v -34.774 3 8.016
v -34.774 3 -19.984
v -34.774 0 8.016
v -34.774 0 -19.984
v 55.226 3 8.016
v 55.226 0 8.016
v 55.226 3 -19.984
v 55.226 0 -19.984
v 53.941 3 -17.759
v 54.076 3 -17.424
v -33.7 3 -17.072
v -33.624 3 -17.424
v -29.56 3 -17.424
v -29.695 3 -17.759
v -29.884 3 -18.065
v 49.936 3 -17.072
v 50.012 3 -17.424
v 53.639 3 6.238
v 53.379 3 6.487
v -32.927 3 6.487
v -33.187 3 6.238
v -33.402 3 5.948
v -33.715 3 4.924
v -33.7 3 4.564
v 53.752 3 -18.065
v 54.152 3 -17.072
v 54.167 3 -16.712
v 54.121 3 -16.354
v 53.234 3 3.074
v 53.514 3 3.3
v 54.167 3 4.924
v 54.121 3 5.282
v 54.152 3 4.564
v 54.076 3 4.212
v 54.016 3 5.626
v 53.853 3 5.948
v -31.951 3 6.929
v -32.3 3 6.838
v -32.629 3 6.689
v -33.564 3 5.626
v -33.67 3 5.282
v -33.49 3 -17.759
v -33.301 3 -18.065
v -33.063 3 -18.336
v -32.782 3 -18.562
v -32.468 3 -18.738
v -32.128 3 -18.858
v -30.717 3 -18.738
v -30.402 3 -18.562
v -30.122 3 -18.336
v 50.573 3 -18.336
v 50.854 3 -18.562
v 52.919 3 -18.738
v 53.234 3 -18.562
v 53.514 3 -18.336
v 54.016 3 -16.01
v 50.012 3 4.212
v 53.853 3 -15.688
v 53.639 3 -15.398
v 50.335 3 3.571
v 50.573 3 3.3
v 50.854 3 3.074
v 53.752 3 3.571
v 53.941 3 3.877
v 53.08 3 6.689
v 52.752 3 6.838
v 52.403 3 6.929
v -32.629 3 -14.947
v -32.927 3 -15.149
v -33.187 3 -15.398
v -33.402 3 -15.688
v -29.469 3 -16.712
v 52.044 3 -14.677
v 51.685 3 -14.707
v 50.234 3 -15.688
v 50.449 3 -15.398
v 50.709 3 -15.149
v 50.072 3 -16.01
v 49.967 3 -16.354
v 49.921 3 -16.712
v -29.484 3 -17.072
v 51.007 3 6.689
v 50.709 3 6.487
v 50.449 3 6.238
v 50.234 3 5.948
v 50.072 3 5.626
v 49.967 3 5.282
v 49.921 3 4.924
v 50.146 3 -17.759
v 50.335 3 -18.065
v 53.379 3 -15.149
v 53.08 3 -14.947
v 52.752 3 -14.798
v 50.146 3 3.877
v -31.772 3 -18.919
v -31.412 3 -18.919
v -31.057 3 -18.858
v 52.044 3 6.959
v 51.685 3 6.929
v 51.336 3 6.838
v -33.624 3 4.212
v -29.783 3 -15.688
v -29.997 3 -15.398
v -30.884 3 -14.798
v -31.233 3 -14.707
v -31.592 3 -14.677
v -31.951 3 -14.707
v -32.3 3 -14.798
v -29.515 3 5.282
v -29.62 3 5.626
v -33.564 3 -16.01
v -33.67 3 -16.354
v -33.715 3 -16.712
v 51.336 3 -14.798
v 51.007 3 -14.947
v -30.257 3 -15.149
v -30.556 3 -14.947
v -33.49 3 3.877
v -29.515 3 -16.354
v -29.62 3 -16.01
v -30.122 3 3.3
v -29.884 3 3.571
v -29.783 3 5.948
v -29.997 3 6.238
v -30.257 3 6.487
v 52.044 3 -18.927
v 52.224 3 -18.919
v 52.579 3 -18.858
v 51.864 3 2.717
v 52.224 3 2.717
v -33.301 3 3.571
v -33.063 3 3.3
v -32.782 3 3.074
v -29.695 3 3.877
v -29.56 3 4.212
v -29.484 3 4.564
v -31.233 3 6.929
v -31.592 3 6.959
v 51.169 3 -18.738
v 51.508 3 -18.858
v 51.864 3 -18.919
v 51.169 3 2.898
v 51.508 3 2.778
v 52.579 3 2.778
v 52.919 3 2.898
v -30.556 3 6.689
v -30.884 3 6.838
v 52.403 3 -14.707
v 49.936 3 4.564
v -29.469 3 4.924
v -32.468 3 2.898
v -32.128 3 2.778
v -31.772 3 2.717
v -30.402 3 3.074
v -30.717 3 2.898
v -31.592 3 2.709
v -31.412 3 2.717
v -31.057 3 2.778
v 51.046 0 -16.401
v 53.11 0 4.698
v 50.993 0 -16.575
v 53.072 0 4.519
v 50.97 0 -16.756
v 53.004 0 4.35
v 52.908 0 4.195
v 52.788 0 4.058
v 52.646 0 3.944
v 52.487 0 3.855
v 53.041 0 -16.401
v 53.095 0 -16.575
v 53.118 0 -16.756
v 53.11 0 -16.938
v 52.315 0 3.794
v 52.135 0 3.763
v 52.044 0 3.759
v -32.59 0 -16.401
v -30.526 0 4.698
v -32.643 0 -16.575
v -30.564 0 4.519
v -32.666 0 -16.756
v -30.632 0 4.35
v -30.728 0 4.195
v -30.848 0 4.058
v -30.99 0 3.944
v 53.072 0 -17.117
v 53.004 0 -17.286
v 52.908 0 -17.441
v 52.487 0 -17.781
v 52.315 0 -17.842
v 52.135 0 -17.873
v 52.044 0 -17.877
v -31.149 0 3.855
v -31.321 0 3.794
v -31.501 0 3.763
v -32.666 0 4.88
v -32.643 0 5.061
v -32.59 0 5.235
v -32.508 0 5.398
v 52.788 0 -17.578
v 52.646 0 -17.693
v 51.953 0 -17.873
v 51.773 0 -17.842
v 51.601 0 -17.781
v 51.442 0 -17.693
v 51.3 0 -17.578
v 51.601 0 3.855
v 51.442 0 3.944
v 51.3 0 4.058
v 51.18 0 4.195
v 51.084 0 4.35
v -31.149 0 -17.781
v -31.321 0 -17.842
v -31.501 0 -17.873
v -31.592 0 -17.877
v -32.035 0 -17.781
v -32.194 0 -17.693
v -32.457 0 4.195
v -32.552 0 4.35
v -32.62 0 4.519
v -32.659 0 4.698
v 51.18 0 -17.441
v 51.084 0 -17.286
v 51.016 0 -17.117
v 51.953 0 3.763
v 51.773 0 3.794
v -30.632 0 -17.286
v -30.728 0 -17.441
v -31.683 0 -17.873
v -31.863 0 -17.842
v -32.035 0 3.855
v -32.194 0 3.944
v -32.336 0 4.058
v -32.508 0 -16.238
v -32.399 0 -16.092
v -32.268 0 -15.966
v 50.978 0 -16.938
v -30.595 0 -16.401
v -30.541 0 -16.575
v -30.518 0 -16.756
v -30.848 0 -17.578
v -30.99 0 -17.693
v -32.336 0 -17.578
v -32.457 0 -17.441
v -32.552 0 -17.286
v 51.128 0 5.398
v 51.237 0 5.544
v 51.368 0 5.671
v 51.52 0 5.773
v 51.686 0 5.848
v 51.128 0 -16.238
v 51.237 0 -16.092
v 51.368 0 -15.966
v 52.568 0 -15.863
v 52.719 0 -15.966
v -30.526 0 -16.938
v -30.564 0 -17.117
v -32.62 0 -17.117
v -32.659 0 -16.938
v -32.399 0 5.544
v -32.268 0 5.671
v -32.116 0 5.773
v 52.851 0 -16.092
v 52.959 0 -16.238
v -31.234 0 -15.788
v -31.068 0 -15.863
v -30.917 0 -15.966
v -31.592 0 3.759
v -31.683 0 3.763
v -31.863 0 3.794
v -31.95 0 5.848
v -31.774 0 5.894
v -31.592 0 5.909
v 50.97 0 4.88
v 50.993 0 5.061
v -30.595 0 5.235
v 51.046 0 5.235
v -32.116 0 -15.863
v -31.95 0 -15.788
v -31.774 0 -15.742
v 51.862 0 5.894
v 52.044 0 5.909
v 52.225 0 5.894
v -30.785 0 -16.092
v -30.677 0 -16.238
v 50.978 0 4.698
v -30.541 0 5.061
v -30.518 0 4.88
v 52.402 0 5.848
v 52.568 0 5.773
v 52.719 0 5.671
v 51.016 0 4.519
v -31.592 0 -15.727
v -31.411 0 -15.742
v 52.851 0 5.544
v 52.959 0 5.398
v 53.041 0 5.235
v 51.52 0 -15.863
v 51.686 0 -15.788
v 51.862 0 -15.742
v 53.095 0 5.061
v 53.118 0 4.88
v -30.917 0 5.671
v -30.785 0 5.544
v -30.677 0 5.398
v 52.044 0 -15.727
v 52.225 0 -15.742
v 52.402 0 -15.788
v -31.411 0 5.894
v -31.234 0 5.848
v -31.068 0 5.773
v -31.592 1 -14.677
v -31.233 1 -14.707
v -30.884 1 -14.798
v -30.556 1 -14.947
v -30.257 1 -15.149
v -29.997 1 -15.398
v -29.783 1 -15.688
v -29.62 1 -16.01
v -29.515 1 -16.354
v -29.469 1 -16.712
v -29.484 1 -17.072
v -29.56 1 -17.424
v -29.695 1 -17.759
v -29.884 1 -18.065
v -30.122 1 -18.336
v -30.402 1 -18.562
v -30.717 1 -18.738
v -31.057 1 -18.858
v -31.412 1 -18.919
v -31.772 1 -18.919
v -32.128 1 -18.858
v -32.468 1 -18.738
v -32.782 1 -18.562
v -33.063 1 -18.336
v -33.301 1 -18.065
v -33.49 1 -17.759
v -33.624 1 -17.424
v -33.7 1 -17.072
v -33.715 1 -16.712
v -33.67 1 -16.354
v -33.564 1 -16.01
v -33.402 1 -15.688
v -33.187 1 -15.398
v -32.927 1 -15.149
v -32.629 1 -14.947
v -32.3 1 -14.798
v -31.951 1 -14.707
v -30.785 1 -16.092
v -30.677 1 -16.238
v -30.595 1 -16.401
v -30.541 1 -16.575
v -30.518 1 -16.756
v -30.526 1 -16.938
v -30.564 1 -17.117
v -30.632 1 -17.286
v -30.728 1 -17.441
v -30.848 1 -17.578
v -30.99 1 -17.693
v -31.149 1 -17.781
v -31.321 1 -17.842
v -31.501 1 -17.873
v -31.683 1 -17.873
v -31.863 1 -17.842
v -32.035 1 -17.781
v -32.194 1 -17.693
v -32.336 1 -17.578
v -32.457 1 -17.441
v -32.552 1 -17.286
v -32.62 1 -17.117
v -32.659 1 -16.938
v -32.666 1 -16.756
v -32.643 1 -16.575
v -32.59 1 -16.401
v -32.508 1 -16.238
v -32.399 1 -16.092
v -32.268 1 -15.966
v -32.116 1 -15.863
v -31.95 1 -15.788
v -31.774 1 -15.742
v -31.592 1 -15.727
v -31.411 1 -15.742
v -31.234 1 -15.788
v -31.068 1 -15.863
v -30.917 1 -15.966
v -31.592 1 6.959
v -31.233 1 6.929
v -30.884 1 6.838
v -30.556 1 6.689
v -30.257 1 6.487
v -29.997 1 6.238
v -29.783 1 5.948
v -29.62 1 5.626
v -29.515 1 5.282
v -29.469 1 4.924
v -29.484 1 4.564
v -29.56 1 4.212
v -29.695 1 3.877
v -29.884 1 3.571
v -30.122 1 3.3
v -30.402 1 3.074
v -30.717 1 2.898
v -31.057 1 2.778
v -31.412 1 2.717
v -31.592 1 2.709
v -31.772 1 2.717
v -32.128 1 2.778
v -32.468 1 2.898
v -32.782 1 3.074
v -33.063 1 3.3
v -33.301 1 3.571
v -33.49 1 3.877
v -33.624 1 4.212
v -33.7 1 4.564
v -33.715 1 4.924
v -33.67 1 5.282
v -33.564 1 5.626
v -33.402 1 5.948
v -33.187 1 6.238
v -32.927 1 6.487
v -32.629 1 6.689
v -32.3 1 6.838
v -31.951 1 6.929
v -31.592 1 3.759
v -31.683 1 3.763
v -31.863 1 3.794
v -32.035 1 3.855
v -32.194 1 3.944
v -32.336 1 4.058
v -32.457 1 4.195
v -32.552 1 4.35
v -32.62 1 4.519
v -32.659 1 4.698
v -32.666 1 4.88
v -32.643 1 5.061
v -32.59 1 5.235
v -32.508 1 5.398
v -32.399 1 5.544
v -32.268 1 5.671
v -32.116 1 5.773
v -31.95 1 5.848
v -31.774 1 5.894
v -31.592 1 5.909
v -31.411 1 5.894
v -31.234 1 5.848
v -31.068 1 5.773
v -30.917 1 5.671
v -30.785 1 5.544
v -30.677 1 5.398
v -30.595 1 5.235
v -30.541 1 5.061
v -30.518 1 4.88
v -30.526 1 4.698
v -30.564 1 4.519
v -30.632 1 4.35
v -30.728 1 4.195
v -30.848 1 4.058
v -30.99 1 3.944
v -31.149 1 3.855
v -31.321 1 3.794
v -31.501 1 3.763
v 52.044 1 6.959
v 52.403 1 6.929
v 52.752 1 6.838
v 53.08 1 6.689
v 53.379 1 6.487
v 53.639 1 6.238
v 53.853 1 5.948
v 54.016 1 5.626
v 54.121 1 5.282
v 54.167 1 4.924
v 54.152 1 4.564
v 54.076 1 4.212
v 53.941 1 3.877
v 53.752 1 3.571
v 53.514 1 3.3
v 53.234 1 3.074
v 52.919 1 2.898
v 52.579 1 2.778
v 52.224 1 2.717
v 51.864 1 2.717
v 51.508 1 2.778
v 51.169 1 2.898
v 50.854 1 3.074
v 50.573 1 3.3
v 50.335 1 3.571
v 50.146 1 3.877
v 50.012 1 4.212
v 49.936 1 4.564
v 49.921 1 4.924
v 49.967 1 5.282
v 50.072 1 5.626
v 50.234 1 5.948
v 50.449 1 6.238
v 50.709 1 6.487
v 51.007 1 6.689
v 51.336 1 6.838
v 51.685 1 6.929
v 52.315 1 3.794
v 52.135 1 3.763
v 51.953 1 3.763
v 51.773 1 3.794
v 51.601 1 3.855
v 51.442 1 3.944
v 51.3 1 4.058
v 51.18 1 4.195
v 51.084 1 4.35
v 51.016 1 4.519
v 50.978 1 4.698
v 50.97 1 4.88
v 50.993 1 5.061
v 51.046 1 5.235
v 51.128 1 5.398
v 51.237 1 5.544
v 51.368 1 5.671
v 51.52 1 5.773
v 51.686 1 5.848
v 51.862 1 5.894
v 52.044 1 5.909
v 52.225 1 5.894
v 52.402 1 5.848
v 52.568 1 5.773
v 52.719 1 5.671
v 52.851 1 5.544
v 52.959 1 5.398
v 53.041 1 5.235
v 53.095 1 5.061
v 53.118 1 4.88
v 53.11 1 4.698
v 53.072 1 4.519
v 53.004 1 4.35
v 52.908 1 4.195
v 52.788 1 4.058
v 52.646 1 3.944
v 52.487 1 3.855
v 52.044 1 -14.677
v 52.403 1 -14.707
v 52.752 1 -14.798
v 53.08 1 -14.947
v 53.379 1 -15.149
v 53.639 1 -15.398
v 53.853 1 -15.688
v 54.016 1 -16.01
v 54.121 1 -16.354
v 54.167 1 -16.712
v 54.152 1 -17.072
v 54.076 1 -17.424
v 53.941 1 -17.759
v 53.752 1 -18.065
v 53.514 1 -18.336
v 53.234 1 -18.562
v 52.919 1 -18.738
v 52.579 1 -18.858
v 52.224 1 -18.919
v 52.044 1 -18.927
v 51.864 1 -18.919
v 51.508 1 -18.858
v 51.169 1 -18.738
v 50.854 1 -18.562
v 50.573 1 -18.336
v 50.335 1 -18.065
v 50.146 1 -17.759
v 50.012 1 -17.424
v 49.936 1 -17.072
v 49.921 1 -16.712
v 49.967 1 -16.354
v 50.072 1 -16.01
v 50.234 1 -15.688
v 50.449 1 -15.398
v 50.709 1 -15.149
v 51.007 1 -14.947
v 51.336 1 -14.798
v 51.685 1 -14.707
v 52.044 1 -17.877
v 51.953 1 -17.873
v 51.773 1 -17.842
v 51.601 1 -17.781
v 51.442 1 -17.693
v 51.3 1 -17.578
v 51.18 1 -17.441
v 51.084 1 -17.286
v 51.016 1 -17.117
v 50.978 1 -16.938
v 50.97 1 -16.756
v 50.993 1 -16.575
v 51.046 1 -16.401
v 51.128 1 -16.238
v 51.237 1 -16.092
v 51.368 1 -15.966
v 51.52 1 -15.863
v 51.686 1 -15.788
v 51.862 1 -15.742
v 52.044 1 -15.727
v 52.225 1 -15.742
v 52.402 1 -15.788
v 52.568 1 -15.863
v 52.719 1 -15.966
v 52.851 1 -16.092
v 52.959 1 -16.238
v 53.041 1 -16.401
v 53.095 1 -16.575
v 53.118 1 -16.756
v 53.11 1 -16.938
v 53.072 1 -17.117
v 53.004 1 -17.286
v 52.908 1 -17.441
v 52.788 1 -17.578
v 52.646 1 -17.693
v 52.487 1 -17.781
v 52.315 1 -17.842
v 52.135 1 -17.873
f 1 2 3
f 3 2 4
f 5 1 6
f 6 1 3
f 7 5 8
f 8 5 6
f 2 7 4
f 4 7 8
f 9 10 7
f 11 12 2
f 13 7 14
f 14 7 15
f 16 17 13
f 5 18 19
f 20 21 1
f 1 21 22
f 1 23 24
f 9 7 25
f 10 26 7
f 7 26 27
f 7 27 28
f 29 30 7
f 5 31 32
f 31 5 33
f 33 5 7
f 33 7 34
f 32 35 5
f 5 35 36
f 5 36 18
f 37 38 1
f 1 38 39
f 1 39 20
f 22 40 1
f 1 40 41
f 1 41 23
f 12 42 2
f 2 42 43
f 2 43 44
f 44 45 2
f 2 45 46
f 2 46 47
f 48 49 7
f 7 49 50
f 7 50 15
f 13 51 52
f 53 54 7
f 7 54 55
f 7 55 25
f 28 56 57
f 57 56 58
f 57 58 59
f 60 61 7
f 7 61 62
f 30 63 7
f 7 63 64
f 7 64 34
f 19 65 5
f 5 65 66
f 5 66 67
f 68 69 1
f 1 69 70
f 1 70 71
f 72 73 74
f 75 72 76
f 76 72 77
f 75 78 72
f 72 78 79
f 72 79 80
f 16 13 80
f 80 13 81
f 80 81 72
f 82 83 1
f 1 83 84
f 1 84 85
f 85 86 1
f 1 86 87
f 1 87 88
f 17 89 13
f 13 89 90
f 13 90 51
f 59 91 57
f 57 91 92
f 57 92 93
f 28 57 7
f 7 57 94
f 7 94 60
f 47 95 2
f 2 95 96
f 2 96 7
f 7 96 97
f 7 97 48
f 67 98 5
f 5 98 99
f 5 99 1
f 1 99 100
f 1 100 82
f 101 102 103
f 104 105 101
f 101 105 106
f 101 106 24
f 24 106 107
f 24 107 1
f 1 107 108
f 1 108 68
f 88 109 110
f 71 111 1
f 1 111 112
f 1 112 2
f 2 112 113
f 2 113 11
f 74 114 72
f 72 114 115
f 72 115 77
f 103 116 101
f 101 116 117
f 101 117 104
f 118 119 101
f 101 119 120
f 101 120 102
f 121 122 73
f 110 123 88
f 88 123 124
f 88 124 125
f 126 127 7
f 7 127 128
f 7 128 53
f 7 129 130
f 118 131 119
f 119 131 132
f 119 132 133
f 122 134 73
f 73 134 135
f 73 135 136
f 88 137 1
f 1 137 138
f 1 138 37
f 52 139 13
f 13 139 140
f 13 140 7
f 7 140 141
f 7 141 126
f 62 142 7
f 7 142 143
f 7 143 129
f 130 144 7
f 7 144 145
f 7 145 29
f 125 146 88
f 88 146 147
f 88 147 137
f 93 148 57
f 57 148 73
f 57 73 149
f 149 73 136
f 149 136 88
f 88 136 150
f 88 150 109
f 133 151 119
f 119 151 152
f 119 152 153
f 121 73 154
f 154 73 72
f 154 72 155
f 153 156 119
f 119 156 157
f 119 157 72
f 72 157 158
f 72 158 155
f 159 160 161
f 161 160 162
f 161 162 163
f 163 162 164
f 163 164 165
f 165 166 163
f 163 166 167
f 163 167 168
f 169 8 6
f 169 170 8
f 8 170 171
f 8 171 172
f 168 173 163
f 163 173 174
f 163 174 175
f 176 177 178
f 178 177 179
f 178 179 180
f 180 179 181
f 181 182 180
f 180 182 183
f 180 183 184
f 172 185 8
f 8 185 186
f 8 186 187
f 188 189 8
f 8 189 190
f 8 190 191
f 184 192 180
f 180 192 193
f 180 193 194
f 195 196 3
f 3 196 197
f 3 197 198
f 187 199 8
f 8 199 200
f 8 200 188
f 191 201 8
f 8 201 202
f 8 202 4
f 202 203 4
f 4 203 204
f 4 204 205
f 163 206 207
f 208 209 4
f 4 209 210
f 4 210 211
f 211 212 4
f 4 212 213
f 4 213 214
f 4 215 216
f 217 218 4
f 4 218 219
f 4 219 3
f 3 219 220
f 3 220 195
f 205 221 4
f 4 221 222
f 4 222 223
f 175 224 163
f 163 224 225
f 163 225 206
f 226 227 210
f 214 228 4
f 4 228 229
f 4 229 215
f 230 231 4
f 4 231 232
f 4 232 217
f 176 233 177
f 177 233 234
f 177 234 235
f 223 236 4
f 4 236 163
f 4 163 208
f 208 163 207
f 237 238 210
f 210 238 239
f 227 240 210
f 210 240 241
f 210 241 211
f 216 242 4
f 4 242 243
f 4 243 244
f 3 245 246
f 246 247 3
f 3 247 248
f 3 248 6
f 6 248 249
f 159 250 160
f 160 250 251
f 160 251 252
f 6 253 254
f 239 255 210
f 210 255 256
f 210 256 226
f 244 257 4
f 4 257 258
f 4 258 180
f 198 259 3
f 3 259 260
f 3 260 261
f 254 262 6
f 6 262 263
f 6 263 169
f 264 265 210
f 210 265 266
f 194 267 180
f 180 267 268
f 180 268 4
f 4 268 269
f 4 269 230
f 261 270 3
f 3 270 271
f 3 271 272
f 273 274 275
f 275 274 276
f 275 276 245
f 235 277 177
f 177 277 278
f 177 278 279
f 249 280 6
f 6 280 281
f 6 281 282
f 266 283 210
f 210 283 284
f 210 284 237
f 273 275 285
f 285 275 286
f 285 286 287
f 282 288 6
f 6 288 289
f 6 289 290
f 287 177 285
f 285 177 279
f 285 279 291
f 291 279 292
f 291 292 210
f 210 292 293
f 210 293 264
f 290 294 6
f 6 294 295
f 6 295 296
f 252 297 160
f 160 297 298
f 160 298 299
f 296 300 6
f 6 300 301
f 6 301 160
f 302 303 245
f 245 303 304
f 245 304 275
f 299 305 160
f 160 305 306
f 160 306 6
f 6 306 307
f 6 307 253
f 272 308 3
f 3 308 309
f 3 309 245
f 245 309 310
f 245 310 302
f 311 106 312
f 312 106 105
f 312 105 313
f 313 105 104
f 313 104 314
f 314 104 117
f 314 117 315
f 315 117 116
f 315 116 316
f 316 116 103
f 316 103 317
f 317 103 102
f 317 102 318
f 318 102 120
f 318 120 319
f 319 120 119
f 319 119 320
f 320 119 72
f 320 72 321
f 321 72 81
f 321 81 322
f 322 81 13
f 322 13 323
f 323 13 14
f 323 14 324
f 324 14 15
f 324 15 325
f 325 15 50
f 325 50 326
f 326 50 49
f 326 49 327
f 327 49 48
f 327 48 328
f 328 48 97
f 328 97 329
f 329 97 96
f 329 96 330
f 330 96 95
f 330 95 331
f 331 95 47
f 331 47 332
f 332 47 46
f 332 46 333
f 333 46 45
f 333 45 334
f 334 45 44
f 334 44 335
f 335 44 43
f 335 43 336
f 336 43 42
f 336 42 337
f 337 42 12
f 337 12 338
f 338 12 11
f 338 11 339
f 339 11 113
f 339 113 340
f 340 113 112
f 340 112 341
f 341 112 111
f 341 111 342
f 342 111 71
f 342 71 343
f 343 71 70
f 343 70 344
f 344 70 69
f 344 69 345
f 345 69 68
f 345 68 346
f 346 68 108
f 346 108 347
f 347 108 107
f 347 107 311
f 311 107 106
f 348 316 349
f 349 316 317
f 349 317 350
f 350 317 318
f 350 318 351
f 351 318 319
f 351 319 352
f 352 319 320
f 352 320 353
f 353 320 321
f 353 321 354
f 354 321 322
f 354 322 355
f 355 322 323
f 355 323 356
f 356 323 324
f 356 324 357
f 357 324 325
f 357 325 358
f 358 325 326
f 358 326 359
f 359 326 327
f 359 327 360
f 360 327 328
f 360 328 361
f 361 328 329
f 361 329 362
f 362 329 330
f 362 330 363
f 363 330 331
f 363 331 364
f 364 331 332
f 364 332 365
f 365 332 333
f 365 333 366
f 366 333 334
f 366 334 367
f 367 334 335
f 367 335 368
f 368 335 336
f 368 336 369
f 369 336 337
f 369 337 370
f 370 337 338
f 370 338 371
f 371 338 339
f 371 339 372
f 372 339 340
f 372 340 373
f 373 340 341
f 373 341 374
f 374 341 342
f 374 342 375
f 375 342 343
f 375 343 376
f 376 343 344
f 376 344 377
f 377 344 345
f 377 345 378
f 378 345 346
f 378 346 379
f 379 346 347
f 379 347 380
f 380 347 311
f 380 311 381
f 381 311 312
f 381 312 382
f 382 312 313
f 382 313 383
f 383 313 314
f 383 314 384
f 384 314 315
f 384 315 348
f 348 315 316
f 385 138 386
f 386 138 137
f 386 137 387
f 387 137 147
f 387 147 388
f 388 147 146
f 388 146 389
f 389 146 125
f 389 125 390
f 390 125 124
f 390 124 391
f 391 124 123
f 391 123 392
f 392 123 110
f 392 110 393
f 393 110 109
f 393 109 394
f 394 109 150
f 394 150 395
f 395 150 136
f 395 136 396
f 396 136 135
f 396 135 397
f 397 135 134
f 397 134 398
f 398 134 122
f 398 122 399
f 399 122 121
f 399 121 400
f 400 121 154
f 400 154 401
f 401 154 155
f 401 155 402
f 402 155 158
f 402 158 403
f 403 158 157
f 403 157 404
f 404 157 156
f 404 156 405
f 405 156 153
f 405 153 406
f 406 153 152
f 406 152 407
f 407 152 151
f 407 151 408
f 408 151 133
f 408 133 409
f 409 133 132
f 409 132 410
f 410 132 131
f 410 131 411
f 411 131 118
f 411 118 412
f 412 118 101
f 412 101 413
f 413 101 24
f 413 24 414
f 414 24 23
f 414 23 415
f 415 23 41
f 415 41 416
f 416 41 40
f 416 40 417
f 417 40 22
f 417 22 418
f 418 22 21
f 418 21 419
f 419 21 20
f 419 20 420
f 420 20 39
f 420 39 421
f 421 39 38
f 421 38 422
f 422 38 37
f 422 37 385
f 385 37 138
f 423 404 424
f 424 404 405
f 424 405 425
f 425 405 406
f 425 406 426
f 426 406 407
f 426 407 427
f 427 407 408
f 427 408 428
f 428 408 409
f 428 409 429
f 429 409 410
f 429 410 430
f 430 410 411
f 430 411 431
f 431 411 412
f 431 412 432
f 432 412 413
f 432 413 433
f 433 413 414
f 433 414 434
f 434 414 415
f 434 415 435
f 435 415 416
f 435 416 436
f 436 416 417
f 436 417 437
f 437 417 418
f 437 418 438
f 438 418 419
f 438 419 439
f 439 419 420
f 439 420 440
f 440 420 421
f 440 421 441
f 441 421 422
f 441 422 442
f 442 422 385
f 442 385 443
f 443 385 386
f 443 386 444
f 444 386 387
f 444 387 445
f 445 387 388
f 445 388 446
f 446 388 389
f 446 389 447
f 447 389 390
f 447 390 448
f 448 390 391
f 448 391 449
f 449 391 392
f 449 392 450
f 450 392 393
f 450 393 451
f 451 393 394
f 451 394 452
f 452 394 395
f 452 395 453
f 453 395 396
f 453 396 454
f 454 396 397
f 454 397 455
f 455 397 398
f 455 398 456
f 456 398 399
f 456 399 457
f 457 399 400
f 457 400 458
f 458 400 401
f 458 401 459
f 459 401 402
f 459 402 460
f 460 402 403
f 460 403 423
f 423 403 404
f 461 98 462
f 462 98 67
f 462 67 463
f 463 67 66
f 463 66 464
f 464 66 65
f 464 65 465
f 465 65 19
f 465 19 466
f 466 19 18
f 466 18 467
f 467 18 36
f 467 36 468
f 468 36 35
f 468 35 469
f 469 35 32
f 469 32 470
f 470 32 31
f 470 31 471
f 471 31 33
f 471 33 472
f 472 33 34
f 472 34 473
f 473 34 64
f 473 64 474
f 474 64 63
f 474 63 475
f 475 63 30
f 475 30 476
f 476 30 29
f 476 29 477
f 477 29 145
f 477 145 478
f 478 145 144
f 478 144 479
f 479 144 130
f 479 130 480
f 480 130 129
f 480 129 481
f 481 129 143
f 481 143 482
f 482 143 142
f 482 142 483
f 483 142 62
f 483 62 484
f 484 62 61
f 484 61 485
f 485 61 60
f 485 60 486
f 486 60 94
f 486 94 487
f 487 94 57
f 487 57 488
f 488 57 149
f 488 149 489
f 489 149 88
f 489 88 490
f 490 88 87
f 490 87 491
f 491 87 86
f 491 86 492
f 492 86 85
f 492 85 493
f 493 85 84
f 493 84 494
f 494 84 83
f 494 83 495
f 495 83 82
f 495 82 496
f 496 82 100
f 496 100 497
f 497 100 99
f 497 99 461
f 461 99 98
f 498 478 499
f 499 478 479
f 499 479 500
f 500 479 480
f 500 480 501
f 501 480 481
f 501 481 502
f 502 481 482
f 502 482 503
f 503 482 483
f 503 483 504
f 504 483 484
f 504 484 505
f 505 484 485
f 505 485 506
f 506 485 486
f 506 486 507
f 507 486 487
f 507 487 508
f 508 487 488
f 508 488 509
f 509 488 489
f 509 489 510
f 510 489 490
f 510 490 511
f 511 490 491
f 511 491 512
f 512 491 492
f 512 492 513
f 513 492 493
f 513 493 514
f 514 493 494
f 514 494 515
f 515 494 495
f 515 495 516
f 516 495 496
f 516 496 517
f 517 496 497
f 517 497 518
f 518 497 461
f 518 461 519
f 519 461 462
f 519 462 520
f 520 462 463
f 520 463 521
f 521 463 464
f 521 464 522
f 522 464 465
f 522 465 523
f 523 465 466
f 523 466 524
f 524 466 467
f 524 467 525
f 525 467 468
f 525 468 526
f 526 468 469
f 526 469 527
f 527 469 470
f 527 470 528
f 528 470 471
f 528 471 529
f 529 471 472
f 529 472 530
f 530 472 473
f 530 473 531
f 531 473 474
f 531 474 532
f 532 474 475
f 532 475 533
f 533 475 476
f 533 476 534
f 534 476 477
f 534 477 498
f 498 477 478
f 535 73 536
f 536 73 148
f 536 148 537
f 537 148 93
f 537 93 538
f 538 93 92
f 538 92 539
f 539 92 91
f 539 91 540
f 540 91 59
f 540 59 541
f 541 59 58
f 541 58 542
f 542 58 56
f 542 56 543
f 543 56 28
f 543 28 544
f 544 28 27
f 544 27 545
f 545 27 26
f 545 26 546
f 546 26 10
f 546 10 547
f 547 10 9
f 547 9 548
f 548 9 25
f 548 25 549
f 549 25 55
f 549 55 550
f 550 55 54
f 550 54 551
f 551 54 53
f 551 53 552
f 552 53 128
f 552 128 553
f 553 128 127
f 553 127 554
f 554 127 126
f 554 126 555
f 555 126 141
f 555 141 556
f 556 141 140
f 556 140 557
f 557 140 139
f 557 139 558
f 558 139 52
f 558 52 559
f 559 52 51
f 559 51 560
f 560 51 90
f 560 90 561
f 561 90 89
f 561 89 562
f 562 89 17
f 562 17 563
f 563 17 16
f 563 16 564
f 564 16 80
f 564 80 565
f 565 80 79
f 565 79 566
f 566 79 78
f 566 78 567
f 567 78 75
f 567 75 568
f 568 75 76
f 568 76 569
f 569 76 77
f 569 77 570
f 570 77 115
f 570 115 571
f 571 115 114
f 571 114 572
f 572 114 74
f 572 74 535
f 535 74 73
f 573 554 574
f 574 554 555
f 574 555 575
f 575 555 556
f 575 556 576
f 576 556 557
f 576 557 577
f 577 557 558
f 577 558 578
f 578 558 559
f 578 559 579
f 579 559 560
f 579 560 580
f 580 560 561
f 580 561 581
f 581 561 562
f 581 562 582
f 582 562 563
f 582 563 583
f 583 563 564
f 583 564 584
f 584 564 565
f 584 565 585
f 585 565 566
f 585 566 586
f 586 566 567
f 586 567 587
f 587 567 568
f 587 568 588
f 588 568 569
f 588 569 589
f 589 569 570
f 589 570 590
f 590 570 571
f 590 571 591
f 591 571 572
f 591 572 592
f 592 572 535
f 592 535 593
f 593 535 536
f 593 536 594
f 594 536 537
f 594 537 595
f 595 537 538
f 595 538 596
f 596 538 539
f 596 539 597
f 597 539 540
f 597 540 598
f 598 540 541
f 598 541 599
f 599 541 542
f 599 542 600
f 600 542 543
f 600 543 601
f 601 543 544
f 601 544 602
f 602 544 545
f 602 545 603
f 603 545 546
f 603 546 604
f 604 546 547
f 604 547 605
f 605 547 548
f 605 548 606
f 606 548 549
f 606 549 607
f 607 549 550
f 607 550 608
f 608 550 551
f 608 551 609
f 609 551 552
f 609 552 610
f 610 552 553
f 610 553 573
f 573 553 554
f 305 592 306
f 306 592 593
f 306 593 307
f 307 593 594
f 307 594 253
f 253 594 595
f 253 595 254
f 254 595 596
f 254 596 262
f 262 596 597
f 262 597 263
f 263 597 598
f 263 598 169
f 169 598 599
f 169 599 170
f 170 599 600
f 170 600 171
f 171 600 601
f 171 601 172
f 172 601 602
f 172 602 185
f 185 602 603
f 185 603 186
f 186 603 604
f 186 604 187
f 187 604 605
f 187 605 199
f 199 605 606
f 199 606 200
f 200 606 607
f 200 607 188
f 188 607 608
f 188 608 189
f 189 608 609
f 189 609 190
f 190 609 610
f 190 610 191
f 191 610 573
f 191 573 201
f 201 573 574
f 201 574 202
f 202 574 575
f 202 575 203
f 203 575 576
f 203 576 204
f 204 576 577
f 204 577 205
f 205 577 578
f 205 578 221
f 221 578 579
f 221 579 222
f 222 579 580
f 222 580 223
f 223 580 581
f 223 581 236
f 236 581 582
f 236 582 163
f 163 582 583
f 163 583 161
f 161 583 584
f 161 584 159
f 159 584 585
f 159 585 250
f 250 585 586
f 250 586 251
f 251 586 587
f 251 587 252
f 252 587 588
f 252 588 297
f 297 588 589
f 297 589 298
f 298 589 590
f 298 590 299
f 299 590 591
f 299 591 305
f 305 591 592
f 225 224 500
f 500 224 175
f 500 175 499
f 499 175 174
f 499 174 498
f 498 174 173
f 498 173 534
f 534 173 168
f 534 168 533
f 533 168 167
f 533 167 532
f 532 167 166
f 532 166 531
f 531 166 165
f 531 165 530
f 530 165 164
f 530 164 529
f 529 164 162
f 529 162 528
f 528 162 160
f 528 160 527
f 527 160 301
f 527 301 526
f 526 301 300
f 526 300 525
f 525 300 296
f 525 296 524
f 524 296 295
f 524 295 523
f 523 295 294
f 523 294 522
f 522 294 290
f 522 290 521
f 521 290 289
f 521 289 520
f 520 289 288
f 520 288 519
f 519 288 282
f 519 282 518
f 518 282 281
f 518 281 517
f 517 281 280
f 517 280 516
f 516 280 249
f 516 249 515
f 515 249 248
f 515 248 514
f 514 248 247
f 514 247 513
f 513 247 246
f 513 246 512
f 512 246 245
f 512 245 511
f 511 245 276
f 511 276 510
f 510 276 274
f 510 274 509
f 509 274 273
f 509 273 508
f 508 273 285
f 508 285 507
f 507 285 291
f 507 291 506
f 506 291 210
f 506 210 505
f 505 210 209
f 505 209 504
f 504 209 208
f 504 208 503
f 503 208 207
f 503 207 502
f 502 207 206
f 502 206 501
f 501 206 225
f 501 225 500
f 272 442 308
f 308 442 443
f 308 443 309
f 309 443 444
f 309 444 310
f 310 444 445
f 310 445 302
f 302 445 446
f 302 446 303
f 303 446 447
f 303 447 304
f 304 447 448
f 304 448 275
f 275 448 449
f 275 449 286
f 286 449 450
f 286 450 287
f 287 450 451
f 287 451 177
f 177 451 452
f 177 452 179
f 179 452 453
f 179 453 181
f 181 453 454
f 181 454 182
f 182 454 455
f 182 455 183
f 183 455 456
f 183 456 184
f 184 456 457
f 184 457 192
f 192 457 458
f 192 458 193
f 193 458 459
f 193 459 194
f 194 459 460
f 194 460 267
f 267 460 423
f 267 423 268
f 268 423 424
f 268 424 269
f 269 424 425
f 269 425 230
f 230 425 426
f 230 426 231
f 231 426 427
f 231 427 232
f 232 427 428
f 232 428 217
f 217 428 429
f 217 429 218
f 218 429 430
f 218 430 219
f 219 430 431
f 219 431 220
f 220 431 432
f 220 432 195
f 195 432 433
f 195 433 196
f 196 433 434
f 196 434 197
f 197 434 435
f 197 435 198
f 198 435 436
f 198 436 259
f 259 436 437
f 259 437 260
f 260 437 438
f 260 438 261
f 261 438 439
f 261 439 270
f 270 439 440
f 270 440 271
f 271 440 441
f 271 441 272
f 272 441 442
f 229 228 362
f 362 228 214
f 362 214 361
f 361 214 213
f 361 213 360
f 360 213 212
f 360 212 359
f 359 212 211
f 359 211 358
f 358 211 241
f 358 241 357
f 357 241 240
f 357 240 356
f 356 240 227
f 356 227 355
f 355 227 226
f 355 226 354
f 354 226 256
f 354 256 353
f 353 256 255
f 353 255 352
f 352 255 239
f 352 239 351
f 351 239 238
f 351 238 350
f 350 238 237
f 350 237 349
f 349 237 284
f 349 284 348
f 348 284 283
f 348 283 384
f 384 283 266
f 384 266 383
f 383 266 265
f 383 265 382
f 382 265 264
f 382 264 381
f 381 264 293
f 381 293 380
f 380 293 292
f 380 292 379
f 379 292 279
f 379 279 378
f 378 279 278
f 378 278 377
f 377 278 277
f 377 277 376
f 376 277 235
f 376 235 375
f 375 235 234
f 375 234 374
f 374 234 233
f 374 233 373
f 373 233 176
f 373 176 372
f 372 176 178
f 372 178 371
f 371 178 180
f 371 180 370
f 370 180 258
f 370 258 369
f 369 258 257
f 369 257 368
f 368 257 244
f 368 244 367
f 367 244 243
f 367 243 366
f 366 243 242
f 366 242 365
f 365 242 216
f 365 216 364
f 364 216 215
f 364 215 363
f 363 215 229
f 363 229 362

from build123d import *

# Parameters (mm, degrees)
SKETCH2_W           = 90
SKETCH2_H           = 28
BOSS_EXTRUDE1_DEPTH = 3
SKETCH3_R           = 2.125
SKETCH3_R_2         = 1.075
CUT_EXTRUDE1_DEPTH  = 2
SKETCH5_R           = 1.075
CUT_EXTRUDE3_DEPTH  = 4


with BuildPart() as part:
    # Sketch2 → Boss-Extrude1 (new body)
    with BuildSketch(Plane(origin=(0, 0, 0), x_dir=(1, 0, 0), z_dir=(0, 1, 0))):
        with Locations((10.225806452, 5.983870968)):
            Rectangle(SKETCH2_W, SKETCH2_H)
    extrude(amount=BOSS_EXTRUDE1_DEPTH)

    # Sketch3 → Cut-Extrude1 (cut)
    # profile 1 of 4: a face of its own
    with BuildSketch(Plane(origin=(0, 3, 0), x_dir=(1, 0, 0), z_dir=(0, 1, 0))):
        with Locations(Location((-31.592213033, 16.801890452, 0), (0, 0, 270))):
            Circle(SKETCH3_R)
        with Locations(Location((-31.592213033, 16.801890452, 0), (0, 0, 270))):
            Circle(SKETCH3_R_2, mode=Mode.SUBTRACT)
    # profile 2 of 4: a face of its own
    with BuildSketch(Plane(origin=(0, 3, 0), x_dir=(1, 0, 0), z_dir=(0, 1, 0))):
        with Locations(Location((-31.592213033, -4.834148517, 0), (0, 0, 90))):
            Circle(SKETCH3_R)
        with Locations(Location((-31.592213033, -4.834148517, 0), (0, 0, 90))):
            Circle(SKETCH3_R_2, mode=Mode.SUBTRACT)
    # profile 3 of 4: a face of its own
    with BuildSketch(Plane(origin=(0, 3, 0), x_dir=(1, 0, 0), z_dir=(0, 1, 0))):
        with Locations(Location((52.043825936, -4.834148517, 0), (0, 0, 270))):
            Circle(SKETCH3_R)
        with Locations(Location((52.043825936, -4.834148517, 0), (0, 0, 270))):
            Circle(SKETCH3_R_2, mode=Mode.SUBTRACT)
    # profile 4 of 4: a face of its own
    with BuildSketch(Plane(origin=(0, 3, 0), x_dir=(1, 0, 0), z_dir=(0, 1, 0))):
        with Locations(Location((52.043825936, 16.801890452, 0), (0, 0, 90))):
            Circle(SKETCH3_R)
        with Locations(Location((52.043825936, 16.801890452, 0), (0, 0, 90))):
            Circle(SKETCH3_R_2, mode=Mode.SUBTRACT)
    extrude(amount=-CUT_EXTRUDE1_DEPTH, mode=Mode.SUBTRACT)

    # Sketch5 → Cut-Extrude3 (cut)
    with BuildSketch(Plane(origin=(0, 3, 0), x_dir=(1, 0, 0), z_dir=(0, 1, 0))):
        with Locations(Location((-31.592213033, 16.801890452, 0), (0, 0, 270))):
            Circle(SKETCH5_R)
        with Locations(Location((-31.592213033, -4.834148517, 0), (0, 0, 90))):
            Circle(SKETCH5_R)
        with Locations(Location((52.043825936, -4.834148517, 0), (0, 0, 270))):
            Circle(SKETCH5_R)
        with Locations(Location((52.043825936, 16.801890452, 0), (0, 0, 90))):
            Circle(SKETCH5_R)
    extrude(amount=-CUT_EXTRUDE3_DEPTH, mode=Mode.SUBTRACT)


solid = part.part
